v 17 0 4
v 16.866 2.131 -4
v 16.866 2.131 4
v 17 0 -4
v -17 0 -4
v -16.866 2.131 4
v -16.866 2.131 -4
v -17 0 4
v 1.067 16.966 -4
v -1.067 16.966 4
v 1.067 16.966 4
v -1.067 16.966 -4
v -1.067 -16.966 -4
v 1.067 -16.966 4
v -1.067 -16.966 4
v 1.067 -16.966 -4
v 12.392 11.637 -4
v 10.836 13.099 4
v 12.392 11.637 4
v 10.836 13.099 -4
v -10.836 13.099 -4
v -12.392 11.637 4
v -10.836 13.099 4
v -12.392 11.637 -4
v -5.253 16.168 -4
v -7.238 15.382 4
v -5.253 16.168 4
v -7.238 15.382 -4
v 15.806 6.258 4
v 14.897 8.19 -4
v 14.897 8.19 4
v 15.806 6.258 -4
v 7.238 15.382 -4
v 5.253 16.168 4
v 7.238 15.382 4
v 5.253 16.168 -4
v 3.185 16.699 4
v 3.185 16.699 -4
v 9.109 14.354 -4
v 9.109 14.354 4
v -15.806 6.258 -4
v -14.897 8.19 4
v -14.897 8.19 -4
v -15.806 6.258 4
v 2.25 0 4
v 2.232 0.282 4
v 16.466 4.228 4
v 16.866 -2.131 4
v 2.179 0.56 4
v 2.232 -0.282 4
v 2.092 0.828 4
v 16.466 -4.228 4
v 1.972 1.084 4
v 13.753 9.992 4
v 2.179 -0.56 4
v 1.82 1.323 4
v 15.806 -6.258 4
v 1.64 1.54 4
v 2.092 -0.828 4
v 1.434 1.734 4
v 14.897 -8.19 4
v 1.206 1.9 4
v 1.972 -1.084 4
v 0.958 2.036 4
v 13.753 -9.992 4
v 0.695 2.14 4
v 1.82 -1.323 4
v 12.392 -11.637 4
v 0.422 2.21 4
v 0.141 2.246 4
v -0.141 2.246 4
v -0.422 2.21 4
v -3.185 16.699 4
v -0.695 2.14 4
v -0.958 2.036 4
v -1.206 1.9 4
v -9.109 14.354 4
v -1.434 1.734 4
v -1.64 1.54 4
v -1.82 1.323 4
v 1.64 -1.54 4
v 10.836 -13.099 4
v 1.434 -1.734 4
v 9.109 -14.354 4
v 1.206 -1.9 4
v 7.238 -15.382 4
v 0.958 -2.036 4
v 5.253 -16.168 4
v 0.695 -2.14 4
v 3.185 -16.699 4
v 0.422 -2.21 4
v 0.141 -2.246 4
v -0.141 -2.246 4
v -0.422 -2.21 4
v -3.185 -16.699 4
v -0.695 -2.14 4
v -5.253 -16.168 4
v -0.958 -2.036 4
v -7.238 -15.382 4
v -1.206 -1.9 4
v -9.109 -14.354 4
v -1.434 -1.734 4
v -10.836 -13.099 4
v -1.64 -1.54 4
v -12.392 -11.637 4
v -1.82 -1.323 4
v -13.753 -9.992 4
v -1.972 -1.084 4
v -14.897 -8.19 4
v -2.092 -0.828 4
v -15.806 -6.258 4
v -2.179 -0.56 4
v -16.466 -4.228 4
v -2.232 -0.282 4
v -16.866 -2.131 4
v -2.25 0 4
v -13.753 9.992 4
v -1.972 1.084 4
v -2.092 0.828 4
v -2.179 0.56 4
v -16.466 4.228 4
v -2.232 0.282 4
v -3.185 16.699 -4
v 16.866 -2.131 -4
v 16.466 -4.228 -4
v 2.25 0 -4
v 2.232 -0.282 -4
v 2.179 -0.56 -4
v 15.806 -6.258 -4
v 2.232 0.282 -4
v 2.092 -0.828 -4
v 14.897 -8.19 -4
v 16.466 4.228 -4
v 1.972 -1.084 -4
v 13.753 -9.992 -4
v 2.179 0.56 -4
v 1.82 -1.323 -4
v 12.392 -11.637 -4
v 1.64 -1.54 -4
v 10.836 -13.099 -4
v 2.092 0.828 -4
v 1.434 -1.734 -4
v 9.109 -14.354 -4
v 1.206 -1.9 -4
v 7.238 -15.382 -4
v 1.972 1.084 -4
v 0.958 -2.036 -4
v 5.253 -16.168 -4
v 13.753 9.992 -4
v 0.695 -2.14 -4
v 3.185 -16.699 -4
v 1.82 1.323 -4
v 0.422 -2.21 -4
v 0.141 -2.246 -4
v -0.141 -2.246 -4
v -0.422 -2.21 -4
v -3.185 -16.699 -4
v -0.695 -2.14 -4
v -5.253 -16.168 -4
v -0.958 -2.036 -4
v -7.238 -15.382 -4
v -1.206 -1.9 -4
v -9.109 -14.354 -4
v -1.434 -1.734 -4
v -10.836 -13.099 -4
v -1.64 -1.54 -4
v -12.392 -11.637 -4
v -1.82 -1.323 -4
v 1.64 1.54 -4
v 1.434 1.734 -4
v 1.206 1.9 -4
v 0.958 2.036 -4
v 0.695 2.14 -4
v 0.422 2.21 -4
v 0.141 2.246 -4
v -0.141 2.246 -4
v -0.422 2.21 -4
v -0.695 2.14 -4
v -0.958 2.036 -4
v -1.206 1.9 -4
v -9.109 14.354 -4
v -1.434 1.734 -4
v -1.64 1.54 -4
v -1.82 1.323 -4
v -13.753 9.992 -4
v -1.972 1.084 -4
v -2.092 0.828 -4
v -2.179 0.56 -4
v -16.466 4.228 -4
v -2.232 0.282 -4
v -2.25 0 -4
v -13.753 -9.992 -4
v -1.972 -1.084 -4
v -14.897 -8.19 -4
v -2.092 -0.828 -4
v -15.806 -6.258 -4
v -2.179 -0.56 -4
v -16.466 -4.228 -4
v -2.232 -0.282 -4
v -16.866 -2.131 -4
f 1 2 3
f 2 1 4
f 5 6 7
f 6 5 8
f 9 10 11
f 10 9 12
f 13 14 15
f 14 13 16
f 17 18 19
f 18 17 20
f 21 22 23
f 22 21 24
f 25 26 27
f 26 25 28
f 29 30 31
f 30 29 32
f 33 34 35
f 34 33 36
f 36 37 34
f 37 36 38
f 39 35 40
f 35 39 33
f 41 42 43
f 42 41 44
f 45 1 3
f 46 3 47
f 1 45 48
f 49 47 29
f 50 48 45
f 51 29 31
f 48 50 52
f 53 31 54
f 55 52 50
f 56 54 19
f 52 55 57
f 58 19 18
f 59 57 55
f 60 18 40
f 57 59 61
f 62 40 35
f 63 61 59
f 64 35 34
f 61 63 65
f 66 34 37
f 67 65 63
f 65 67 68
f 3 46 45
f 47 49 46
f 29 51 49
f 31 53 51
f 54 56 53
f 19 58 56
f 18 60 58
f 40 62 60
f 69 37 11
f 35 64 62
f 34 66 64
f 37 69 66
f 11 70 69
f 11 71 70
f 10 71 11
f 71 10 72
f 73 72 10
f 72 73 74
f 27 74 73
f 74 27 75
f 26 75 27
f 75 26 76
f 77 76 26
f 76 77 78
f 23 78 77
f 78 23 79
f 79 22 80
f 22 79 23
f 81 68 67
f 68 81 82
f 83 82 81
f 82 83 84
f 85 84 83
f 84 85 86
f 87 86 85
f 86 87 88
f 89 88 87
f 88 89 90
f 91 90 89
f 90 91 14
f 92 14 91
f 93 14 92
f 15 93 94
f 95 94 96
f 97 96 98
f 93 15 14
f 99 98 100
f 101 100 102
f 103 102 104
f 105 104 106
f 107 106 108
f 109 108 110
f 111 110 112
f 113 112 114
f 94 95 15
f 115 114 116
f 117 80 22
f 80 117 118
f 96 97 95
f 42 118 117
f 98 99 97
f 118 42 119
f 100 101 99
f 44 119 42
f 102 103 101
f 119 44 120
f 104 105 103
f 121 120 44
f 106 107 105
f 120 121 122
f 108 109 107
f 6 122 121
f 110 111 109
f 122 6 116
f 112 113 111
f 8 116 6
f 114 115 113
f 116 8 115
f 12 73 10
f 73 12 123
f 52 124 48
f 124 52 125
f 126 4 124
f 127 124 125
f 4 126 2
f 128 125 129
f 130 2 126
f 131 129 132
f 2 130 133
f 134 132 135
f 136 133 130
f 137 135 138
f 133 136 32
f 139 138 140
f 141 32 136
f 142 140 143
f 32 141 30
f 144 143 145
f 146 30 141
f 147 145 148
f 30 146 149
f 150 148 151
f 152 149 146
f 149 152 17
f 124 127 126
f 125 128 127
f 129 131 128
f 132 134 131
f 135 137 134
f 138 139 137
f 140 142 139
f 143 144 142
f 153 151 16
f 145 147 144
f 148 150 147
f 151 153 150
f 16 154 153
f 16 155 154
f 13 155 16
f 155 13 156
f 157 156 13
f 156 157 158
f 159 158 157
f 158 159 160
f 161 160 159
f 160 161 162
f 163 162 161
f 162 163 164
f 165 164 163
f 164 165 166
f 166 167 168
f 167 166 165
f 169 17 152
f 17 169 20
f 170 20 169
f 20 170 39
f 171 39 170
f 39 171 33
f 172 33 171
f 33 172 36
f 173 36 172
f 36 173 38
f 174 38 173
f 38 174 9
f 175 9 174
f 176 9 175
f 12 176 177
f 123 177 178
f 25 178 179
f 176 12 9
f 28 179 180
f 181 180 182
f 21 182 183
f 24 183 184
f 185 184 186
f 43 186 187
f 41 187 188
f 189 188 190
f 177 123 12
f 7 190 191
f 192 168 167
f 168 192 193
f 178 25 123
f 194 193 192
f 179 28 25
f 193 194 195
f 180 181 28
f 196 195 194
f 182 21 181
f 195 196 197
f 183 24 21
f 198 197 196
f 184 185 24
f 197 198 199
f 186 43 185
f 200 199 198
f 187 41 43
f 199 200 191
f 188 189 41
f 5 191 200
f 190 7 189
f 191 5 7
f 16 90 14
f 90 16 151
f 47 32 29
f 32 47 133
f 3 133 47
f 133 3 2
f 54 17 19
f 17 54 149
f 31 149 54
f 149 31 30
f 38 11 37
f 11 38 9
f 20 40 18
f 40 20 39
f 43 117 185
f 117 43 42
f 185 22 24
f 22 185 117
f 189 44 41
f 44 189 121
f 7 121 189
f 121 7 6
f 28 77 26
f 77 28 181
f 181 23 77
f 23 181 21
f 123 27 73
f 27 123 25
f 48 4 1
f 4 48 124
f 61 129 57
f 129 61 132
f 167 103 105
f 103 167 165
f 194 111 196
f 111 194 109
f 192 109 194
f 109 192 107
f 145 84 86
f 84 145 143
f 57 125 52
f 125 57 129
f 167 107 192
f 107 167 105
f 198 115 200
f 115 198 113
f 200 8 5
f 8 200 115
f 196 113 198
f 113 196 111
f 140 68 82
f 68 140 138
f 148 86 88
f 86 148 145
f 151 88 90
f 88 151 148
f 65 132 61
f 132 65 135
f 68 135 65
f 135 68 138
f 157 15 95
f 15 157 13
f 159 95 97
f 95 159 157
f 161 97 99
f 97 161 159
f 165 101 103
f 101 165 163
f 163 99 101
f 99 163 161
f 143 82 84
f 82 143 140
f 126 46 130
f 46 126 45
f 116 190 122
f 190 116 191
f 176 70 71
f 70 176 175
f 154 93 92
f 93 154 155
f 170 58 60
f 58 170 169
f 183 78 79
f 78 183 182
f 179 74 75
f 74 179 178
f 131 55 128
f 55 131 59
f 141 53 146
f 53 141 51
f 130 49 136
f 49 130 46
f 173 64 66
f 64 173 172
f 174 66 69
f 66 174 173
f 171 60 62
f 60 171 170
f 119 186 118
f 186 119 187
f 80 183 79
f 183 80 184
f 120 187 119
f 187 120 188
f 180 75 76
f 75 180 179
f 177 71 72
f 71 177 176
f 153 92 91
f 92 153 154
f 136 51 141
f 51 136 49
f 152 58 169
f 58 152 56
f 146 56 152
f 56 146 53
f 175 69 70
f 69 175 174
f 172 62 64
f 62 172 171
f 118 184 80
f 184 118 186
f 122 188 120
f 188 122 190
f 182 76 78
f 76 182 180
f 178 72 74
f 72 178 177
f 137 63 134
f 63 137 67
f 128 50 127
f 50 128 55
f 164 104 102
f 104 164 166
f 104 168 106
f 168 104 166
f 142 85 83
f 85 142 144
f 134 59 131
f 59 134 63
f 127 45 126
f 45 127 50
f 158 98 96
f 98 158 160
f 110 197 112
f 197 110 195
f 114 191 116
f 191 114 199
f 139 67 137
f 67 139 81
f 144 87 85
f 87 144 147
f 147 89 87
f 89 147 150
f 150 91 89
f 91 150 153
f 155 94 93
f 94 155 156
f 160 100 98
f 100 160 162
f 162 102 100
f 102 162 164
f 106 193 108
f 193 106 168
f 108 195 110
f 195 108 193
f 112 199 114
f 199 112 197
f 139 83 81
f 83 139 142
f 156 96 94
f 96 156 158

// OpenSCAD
$fn = 50;


difference() {
	union() {
		translate(v = [0, 0, -4.0000000000]) {
			cylinder(h = 8, r = 17.0000000000);
		}
	}
	union() {
		translate(v = [0, 0, -100.0000000000]) {
			cylinder(h = 200, r = 2.2500000000);
		}
	}
}
